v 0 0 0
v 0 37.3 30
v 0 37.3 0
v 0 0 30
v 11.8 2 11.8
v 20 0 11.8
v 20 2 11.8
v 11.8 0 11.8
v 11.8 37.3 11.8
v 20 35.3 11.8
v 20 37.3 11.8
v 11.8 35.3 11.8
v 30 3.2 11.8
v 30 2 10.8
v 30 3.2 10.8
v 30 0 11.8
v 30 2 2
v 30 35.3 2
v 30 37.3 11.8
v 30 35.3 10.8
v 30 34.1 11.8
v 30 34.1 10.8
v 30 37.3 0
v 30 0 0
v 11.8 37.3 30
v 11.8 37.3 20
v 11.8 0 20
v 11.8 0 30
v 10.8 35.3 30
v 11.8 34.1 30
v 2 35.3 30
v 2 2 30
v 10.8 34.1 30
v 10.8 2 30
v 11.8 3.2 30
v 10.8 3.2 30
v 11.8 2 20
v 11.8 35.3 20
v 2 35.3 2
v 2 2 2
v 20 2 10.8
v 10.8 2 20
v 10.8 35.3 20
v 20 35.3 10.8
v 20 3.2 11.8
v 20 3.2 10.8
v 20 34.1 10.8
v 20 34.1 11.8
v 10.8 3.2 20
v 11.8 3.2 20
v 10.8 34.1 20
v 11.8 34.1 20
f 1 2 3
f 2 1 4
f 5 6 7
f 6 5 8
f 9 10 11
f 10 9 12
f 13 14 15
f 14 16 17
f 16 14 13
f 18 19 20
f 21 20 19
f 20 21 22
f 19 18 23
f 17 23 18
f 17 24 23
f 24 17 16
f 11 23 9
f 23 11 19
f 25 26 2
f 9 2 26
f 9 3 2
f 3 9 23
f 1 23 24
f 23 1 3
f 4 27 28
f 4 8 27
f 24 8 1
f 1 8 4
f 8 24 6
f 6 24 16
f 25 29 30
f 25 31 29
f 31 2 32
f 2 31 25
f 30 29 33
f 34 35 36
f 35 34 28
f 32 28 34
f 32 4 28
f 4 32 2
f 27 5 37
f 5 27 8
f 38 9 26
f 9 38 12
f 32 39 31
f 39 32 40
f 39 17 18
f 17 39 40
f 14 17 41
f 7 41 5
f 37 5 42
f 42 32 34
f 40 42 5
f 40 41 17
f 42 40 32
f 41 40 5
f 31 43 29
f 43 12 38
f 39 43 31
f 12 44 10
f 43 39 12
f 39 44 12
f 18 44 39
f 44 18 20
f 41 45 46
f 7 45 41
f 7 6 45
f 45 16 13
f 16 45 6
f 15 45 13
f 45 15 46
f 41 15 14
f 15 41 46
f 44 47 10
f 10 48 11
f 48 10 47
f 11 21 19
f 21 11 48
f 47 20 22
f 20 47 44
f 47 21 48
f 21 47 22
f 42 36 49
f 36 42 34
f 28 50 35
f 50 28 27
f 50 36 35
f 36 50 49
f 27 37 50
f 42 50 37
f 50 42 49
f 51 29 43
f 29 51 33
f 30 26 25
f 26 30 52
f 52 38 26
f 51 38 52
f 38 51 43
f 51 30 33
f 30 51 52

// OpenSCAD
$fa = 1;
$fs = 0.2;

depth = 9.8;
width = 33.3;
length = 30;

thickness = 2;

tab_thickness = 1;
tab_depth = 1.2;
blank = 20;

difference() {
    union() {
        cube([length, width + 2*thickness, depth + thickness]);
        translate([depth+thickness, 0, 0])
        rotate(-90, [0,1,0])
        cube([length, width + 2*thickness, depth + thickness]);
        }
    
    translate([thickness, thickness, thickness]) {
        cube([length, width, depth]);
    translate([depth, 0, 0])
    rotate(-90, [0,1,0])
    cube([length, width, depth]);
        }    
}

translate(v = [0,0,depth+thickness-tab_thickness]) {
    translate([blank, 0, 0])
    cube([length-blank, thickness+tab_depth, tab_thickness]);

    translate([blank, 0, 0])
    translate([0, (width+2*thickness) - (thickness+tab_depth), 0])
    cube([length-blank, thickness+tab_depth, tab_thickness]);
}

translate([depth+thickness-tab_thickness,0,0]){
    translate([0,0,blank])
    cube([tab_thickness, thickness+tab_depth, length-blank]);

    translate([0,0,blank])
    translate([0, (width+2*thickness) - (thickness+tab_depth), 0])
    cube([tab_thickness, thickness+tab_depth, length-blank]);
}
